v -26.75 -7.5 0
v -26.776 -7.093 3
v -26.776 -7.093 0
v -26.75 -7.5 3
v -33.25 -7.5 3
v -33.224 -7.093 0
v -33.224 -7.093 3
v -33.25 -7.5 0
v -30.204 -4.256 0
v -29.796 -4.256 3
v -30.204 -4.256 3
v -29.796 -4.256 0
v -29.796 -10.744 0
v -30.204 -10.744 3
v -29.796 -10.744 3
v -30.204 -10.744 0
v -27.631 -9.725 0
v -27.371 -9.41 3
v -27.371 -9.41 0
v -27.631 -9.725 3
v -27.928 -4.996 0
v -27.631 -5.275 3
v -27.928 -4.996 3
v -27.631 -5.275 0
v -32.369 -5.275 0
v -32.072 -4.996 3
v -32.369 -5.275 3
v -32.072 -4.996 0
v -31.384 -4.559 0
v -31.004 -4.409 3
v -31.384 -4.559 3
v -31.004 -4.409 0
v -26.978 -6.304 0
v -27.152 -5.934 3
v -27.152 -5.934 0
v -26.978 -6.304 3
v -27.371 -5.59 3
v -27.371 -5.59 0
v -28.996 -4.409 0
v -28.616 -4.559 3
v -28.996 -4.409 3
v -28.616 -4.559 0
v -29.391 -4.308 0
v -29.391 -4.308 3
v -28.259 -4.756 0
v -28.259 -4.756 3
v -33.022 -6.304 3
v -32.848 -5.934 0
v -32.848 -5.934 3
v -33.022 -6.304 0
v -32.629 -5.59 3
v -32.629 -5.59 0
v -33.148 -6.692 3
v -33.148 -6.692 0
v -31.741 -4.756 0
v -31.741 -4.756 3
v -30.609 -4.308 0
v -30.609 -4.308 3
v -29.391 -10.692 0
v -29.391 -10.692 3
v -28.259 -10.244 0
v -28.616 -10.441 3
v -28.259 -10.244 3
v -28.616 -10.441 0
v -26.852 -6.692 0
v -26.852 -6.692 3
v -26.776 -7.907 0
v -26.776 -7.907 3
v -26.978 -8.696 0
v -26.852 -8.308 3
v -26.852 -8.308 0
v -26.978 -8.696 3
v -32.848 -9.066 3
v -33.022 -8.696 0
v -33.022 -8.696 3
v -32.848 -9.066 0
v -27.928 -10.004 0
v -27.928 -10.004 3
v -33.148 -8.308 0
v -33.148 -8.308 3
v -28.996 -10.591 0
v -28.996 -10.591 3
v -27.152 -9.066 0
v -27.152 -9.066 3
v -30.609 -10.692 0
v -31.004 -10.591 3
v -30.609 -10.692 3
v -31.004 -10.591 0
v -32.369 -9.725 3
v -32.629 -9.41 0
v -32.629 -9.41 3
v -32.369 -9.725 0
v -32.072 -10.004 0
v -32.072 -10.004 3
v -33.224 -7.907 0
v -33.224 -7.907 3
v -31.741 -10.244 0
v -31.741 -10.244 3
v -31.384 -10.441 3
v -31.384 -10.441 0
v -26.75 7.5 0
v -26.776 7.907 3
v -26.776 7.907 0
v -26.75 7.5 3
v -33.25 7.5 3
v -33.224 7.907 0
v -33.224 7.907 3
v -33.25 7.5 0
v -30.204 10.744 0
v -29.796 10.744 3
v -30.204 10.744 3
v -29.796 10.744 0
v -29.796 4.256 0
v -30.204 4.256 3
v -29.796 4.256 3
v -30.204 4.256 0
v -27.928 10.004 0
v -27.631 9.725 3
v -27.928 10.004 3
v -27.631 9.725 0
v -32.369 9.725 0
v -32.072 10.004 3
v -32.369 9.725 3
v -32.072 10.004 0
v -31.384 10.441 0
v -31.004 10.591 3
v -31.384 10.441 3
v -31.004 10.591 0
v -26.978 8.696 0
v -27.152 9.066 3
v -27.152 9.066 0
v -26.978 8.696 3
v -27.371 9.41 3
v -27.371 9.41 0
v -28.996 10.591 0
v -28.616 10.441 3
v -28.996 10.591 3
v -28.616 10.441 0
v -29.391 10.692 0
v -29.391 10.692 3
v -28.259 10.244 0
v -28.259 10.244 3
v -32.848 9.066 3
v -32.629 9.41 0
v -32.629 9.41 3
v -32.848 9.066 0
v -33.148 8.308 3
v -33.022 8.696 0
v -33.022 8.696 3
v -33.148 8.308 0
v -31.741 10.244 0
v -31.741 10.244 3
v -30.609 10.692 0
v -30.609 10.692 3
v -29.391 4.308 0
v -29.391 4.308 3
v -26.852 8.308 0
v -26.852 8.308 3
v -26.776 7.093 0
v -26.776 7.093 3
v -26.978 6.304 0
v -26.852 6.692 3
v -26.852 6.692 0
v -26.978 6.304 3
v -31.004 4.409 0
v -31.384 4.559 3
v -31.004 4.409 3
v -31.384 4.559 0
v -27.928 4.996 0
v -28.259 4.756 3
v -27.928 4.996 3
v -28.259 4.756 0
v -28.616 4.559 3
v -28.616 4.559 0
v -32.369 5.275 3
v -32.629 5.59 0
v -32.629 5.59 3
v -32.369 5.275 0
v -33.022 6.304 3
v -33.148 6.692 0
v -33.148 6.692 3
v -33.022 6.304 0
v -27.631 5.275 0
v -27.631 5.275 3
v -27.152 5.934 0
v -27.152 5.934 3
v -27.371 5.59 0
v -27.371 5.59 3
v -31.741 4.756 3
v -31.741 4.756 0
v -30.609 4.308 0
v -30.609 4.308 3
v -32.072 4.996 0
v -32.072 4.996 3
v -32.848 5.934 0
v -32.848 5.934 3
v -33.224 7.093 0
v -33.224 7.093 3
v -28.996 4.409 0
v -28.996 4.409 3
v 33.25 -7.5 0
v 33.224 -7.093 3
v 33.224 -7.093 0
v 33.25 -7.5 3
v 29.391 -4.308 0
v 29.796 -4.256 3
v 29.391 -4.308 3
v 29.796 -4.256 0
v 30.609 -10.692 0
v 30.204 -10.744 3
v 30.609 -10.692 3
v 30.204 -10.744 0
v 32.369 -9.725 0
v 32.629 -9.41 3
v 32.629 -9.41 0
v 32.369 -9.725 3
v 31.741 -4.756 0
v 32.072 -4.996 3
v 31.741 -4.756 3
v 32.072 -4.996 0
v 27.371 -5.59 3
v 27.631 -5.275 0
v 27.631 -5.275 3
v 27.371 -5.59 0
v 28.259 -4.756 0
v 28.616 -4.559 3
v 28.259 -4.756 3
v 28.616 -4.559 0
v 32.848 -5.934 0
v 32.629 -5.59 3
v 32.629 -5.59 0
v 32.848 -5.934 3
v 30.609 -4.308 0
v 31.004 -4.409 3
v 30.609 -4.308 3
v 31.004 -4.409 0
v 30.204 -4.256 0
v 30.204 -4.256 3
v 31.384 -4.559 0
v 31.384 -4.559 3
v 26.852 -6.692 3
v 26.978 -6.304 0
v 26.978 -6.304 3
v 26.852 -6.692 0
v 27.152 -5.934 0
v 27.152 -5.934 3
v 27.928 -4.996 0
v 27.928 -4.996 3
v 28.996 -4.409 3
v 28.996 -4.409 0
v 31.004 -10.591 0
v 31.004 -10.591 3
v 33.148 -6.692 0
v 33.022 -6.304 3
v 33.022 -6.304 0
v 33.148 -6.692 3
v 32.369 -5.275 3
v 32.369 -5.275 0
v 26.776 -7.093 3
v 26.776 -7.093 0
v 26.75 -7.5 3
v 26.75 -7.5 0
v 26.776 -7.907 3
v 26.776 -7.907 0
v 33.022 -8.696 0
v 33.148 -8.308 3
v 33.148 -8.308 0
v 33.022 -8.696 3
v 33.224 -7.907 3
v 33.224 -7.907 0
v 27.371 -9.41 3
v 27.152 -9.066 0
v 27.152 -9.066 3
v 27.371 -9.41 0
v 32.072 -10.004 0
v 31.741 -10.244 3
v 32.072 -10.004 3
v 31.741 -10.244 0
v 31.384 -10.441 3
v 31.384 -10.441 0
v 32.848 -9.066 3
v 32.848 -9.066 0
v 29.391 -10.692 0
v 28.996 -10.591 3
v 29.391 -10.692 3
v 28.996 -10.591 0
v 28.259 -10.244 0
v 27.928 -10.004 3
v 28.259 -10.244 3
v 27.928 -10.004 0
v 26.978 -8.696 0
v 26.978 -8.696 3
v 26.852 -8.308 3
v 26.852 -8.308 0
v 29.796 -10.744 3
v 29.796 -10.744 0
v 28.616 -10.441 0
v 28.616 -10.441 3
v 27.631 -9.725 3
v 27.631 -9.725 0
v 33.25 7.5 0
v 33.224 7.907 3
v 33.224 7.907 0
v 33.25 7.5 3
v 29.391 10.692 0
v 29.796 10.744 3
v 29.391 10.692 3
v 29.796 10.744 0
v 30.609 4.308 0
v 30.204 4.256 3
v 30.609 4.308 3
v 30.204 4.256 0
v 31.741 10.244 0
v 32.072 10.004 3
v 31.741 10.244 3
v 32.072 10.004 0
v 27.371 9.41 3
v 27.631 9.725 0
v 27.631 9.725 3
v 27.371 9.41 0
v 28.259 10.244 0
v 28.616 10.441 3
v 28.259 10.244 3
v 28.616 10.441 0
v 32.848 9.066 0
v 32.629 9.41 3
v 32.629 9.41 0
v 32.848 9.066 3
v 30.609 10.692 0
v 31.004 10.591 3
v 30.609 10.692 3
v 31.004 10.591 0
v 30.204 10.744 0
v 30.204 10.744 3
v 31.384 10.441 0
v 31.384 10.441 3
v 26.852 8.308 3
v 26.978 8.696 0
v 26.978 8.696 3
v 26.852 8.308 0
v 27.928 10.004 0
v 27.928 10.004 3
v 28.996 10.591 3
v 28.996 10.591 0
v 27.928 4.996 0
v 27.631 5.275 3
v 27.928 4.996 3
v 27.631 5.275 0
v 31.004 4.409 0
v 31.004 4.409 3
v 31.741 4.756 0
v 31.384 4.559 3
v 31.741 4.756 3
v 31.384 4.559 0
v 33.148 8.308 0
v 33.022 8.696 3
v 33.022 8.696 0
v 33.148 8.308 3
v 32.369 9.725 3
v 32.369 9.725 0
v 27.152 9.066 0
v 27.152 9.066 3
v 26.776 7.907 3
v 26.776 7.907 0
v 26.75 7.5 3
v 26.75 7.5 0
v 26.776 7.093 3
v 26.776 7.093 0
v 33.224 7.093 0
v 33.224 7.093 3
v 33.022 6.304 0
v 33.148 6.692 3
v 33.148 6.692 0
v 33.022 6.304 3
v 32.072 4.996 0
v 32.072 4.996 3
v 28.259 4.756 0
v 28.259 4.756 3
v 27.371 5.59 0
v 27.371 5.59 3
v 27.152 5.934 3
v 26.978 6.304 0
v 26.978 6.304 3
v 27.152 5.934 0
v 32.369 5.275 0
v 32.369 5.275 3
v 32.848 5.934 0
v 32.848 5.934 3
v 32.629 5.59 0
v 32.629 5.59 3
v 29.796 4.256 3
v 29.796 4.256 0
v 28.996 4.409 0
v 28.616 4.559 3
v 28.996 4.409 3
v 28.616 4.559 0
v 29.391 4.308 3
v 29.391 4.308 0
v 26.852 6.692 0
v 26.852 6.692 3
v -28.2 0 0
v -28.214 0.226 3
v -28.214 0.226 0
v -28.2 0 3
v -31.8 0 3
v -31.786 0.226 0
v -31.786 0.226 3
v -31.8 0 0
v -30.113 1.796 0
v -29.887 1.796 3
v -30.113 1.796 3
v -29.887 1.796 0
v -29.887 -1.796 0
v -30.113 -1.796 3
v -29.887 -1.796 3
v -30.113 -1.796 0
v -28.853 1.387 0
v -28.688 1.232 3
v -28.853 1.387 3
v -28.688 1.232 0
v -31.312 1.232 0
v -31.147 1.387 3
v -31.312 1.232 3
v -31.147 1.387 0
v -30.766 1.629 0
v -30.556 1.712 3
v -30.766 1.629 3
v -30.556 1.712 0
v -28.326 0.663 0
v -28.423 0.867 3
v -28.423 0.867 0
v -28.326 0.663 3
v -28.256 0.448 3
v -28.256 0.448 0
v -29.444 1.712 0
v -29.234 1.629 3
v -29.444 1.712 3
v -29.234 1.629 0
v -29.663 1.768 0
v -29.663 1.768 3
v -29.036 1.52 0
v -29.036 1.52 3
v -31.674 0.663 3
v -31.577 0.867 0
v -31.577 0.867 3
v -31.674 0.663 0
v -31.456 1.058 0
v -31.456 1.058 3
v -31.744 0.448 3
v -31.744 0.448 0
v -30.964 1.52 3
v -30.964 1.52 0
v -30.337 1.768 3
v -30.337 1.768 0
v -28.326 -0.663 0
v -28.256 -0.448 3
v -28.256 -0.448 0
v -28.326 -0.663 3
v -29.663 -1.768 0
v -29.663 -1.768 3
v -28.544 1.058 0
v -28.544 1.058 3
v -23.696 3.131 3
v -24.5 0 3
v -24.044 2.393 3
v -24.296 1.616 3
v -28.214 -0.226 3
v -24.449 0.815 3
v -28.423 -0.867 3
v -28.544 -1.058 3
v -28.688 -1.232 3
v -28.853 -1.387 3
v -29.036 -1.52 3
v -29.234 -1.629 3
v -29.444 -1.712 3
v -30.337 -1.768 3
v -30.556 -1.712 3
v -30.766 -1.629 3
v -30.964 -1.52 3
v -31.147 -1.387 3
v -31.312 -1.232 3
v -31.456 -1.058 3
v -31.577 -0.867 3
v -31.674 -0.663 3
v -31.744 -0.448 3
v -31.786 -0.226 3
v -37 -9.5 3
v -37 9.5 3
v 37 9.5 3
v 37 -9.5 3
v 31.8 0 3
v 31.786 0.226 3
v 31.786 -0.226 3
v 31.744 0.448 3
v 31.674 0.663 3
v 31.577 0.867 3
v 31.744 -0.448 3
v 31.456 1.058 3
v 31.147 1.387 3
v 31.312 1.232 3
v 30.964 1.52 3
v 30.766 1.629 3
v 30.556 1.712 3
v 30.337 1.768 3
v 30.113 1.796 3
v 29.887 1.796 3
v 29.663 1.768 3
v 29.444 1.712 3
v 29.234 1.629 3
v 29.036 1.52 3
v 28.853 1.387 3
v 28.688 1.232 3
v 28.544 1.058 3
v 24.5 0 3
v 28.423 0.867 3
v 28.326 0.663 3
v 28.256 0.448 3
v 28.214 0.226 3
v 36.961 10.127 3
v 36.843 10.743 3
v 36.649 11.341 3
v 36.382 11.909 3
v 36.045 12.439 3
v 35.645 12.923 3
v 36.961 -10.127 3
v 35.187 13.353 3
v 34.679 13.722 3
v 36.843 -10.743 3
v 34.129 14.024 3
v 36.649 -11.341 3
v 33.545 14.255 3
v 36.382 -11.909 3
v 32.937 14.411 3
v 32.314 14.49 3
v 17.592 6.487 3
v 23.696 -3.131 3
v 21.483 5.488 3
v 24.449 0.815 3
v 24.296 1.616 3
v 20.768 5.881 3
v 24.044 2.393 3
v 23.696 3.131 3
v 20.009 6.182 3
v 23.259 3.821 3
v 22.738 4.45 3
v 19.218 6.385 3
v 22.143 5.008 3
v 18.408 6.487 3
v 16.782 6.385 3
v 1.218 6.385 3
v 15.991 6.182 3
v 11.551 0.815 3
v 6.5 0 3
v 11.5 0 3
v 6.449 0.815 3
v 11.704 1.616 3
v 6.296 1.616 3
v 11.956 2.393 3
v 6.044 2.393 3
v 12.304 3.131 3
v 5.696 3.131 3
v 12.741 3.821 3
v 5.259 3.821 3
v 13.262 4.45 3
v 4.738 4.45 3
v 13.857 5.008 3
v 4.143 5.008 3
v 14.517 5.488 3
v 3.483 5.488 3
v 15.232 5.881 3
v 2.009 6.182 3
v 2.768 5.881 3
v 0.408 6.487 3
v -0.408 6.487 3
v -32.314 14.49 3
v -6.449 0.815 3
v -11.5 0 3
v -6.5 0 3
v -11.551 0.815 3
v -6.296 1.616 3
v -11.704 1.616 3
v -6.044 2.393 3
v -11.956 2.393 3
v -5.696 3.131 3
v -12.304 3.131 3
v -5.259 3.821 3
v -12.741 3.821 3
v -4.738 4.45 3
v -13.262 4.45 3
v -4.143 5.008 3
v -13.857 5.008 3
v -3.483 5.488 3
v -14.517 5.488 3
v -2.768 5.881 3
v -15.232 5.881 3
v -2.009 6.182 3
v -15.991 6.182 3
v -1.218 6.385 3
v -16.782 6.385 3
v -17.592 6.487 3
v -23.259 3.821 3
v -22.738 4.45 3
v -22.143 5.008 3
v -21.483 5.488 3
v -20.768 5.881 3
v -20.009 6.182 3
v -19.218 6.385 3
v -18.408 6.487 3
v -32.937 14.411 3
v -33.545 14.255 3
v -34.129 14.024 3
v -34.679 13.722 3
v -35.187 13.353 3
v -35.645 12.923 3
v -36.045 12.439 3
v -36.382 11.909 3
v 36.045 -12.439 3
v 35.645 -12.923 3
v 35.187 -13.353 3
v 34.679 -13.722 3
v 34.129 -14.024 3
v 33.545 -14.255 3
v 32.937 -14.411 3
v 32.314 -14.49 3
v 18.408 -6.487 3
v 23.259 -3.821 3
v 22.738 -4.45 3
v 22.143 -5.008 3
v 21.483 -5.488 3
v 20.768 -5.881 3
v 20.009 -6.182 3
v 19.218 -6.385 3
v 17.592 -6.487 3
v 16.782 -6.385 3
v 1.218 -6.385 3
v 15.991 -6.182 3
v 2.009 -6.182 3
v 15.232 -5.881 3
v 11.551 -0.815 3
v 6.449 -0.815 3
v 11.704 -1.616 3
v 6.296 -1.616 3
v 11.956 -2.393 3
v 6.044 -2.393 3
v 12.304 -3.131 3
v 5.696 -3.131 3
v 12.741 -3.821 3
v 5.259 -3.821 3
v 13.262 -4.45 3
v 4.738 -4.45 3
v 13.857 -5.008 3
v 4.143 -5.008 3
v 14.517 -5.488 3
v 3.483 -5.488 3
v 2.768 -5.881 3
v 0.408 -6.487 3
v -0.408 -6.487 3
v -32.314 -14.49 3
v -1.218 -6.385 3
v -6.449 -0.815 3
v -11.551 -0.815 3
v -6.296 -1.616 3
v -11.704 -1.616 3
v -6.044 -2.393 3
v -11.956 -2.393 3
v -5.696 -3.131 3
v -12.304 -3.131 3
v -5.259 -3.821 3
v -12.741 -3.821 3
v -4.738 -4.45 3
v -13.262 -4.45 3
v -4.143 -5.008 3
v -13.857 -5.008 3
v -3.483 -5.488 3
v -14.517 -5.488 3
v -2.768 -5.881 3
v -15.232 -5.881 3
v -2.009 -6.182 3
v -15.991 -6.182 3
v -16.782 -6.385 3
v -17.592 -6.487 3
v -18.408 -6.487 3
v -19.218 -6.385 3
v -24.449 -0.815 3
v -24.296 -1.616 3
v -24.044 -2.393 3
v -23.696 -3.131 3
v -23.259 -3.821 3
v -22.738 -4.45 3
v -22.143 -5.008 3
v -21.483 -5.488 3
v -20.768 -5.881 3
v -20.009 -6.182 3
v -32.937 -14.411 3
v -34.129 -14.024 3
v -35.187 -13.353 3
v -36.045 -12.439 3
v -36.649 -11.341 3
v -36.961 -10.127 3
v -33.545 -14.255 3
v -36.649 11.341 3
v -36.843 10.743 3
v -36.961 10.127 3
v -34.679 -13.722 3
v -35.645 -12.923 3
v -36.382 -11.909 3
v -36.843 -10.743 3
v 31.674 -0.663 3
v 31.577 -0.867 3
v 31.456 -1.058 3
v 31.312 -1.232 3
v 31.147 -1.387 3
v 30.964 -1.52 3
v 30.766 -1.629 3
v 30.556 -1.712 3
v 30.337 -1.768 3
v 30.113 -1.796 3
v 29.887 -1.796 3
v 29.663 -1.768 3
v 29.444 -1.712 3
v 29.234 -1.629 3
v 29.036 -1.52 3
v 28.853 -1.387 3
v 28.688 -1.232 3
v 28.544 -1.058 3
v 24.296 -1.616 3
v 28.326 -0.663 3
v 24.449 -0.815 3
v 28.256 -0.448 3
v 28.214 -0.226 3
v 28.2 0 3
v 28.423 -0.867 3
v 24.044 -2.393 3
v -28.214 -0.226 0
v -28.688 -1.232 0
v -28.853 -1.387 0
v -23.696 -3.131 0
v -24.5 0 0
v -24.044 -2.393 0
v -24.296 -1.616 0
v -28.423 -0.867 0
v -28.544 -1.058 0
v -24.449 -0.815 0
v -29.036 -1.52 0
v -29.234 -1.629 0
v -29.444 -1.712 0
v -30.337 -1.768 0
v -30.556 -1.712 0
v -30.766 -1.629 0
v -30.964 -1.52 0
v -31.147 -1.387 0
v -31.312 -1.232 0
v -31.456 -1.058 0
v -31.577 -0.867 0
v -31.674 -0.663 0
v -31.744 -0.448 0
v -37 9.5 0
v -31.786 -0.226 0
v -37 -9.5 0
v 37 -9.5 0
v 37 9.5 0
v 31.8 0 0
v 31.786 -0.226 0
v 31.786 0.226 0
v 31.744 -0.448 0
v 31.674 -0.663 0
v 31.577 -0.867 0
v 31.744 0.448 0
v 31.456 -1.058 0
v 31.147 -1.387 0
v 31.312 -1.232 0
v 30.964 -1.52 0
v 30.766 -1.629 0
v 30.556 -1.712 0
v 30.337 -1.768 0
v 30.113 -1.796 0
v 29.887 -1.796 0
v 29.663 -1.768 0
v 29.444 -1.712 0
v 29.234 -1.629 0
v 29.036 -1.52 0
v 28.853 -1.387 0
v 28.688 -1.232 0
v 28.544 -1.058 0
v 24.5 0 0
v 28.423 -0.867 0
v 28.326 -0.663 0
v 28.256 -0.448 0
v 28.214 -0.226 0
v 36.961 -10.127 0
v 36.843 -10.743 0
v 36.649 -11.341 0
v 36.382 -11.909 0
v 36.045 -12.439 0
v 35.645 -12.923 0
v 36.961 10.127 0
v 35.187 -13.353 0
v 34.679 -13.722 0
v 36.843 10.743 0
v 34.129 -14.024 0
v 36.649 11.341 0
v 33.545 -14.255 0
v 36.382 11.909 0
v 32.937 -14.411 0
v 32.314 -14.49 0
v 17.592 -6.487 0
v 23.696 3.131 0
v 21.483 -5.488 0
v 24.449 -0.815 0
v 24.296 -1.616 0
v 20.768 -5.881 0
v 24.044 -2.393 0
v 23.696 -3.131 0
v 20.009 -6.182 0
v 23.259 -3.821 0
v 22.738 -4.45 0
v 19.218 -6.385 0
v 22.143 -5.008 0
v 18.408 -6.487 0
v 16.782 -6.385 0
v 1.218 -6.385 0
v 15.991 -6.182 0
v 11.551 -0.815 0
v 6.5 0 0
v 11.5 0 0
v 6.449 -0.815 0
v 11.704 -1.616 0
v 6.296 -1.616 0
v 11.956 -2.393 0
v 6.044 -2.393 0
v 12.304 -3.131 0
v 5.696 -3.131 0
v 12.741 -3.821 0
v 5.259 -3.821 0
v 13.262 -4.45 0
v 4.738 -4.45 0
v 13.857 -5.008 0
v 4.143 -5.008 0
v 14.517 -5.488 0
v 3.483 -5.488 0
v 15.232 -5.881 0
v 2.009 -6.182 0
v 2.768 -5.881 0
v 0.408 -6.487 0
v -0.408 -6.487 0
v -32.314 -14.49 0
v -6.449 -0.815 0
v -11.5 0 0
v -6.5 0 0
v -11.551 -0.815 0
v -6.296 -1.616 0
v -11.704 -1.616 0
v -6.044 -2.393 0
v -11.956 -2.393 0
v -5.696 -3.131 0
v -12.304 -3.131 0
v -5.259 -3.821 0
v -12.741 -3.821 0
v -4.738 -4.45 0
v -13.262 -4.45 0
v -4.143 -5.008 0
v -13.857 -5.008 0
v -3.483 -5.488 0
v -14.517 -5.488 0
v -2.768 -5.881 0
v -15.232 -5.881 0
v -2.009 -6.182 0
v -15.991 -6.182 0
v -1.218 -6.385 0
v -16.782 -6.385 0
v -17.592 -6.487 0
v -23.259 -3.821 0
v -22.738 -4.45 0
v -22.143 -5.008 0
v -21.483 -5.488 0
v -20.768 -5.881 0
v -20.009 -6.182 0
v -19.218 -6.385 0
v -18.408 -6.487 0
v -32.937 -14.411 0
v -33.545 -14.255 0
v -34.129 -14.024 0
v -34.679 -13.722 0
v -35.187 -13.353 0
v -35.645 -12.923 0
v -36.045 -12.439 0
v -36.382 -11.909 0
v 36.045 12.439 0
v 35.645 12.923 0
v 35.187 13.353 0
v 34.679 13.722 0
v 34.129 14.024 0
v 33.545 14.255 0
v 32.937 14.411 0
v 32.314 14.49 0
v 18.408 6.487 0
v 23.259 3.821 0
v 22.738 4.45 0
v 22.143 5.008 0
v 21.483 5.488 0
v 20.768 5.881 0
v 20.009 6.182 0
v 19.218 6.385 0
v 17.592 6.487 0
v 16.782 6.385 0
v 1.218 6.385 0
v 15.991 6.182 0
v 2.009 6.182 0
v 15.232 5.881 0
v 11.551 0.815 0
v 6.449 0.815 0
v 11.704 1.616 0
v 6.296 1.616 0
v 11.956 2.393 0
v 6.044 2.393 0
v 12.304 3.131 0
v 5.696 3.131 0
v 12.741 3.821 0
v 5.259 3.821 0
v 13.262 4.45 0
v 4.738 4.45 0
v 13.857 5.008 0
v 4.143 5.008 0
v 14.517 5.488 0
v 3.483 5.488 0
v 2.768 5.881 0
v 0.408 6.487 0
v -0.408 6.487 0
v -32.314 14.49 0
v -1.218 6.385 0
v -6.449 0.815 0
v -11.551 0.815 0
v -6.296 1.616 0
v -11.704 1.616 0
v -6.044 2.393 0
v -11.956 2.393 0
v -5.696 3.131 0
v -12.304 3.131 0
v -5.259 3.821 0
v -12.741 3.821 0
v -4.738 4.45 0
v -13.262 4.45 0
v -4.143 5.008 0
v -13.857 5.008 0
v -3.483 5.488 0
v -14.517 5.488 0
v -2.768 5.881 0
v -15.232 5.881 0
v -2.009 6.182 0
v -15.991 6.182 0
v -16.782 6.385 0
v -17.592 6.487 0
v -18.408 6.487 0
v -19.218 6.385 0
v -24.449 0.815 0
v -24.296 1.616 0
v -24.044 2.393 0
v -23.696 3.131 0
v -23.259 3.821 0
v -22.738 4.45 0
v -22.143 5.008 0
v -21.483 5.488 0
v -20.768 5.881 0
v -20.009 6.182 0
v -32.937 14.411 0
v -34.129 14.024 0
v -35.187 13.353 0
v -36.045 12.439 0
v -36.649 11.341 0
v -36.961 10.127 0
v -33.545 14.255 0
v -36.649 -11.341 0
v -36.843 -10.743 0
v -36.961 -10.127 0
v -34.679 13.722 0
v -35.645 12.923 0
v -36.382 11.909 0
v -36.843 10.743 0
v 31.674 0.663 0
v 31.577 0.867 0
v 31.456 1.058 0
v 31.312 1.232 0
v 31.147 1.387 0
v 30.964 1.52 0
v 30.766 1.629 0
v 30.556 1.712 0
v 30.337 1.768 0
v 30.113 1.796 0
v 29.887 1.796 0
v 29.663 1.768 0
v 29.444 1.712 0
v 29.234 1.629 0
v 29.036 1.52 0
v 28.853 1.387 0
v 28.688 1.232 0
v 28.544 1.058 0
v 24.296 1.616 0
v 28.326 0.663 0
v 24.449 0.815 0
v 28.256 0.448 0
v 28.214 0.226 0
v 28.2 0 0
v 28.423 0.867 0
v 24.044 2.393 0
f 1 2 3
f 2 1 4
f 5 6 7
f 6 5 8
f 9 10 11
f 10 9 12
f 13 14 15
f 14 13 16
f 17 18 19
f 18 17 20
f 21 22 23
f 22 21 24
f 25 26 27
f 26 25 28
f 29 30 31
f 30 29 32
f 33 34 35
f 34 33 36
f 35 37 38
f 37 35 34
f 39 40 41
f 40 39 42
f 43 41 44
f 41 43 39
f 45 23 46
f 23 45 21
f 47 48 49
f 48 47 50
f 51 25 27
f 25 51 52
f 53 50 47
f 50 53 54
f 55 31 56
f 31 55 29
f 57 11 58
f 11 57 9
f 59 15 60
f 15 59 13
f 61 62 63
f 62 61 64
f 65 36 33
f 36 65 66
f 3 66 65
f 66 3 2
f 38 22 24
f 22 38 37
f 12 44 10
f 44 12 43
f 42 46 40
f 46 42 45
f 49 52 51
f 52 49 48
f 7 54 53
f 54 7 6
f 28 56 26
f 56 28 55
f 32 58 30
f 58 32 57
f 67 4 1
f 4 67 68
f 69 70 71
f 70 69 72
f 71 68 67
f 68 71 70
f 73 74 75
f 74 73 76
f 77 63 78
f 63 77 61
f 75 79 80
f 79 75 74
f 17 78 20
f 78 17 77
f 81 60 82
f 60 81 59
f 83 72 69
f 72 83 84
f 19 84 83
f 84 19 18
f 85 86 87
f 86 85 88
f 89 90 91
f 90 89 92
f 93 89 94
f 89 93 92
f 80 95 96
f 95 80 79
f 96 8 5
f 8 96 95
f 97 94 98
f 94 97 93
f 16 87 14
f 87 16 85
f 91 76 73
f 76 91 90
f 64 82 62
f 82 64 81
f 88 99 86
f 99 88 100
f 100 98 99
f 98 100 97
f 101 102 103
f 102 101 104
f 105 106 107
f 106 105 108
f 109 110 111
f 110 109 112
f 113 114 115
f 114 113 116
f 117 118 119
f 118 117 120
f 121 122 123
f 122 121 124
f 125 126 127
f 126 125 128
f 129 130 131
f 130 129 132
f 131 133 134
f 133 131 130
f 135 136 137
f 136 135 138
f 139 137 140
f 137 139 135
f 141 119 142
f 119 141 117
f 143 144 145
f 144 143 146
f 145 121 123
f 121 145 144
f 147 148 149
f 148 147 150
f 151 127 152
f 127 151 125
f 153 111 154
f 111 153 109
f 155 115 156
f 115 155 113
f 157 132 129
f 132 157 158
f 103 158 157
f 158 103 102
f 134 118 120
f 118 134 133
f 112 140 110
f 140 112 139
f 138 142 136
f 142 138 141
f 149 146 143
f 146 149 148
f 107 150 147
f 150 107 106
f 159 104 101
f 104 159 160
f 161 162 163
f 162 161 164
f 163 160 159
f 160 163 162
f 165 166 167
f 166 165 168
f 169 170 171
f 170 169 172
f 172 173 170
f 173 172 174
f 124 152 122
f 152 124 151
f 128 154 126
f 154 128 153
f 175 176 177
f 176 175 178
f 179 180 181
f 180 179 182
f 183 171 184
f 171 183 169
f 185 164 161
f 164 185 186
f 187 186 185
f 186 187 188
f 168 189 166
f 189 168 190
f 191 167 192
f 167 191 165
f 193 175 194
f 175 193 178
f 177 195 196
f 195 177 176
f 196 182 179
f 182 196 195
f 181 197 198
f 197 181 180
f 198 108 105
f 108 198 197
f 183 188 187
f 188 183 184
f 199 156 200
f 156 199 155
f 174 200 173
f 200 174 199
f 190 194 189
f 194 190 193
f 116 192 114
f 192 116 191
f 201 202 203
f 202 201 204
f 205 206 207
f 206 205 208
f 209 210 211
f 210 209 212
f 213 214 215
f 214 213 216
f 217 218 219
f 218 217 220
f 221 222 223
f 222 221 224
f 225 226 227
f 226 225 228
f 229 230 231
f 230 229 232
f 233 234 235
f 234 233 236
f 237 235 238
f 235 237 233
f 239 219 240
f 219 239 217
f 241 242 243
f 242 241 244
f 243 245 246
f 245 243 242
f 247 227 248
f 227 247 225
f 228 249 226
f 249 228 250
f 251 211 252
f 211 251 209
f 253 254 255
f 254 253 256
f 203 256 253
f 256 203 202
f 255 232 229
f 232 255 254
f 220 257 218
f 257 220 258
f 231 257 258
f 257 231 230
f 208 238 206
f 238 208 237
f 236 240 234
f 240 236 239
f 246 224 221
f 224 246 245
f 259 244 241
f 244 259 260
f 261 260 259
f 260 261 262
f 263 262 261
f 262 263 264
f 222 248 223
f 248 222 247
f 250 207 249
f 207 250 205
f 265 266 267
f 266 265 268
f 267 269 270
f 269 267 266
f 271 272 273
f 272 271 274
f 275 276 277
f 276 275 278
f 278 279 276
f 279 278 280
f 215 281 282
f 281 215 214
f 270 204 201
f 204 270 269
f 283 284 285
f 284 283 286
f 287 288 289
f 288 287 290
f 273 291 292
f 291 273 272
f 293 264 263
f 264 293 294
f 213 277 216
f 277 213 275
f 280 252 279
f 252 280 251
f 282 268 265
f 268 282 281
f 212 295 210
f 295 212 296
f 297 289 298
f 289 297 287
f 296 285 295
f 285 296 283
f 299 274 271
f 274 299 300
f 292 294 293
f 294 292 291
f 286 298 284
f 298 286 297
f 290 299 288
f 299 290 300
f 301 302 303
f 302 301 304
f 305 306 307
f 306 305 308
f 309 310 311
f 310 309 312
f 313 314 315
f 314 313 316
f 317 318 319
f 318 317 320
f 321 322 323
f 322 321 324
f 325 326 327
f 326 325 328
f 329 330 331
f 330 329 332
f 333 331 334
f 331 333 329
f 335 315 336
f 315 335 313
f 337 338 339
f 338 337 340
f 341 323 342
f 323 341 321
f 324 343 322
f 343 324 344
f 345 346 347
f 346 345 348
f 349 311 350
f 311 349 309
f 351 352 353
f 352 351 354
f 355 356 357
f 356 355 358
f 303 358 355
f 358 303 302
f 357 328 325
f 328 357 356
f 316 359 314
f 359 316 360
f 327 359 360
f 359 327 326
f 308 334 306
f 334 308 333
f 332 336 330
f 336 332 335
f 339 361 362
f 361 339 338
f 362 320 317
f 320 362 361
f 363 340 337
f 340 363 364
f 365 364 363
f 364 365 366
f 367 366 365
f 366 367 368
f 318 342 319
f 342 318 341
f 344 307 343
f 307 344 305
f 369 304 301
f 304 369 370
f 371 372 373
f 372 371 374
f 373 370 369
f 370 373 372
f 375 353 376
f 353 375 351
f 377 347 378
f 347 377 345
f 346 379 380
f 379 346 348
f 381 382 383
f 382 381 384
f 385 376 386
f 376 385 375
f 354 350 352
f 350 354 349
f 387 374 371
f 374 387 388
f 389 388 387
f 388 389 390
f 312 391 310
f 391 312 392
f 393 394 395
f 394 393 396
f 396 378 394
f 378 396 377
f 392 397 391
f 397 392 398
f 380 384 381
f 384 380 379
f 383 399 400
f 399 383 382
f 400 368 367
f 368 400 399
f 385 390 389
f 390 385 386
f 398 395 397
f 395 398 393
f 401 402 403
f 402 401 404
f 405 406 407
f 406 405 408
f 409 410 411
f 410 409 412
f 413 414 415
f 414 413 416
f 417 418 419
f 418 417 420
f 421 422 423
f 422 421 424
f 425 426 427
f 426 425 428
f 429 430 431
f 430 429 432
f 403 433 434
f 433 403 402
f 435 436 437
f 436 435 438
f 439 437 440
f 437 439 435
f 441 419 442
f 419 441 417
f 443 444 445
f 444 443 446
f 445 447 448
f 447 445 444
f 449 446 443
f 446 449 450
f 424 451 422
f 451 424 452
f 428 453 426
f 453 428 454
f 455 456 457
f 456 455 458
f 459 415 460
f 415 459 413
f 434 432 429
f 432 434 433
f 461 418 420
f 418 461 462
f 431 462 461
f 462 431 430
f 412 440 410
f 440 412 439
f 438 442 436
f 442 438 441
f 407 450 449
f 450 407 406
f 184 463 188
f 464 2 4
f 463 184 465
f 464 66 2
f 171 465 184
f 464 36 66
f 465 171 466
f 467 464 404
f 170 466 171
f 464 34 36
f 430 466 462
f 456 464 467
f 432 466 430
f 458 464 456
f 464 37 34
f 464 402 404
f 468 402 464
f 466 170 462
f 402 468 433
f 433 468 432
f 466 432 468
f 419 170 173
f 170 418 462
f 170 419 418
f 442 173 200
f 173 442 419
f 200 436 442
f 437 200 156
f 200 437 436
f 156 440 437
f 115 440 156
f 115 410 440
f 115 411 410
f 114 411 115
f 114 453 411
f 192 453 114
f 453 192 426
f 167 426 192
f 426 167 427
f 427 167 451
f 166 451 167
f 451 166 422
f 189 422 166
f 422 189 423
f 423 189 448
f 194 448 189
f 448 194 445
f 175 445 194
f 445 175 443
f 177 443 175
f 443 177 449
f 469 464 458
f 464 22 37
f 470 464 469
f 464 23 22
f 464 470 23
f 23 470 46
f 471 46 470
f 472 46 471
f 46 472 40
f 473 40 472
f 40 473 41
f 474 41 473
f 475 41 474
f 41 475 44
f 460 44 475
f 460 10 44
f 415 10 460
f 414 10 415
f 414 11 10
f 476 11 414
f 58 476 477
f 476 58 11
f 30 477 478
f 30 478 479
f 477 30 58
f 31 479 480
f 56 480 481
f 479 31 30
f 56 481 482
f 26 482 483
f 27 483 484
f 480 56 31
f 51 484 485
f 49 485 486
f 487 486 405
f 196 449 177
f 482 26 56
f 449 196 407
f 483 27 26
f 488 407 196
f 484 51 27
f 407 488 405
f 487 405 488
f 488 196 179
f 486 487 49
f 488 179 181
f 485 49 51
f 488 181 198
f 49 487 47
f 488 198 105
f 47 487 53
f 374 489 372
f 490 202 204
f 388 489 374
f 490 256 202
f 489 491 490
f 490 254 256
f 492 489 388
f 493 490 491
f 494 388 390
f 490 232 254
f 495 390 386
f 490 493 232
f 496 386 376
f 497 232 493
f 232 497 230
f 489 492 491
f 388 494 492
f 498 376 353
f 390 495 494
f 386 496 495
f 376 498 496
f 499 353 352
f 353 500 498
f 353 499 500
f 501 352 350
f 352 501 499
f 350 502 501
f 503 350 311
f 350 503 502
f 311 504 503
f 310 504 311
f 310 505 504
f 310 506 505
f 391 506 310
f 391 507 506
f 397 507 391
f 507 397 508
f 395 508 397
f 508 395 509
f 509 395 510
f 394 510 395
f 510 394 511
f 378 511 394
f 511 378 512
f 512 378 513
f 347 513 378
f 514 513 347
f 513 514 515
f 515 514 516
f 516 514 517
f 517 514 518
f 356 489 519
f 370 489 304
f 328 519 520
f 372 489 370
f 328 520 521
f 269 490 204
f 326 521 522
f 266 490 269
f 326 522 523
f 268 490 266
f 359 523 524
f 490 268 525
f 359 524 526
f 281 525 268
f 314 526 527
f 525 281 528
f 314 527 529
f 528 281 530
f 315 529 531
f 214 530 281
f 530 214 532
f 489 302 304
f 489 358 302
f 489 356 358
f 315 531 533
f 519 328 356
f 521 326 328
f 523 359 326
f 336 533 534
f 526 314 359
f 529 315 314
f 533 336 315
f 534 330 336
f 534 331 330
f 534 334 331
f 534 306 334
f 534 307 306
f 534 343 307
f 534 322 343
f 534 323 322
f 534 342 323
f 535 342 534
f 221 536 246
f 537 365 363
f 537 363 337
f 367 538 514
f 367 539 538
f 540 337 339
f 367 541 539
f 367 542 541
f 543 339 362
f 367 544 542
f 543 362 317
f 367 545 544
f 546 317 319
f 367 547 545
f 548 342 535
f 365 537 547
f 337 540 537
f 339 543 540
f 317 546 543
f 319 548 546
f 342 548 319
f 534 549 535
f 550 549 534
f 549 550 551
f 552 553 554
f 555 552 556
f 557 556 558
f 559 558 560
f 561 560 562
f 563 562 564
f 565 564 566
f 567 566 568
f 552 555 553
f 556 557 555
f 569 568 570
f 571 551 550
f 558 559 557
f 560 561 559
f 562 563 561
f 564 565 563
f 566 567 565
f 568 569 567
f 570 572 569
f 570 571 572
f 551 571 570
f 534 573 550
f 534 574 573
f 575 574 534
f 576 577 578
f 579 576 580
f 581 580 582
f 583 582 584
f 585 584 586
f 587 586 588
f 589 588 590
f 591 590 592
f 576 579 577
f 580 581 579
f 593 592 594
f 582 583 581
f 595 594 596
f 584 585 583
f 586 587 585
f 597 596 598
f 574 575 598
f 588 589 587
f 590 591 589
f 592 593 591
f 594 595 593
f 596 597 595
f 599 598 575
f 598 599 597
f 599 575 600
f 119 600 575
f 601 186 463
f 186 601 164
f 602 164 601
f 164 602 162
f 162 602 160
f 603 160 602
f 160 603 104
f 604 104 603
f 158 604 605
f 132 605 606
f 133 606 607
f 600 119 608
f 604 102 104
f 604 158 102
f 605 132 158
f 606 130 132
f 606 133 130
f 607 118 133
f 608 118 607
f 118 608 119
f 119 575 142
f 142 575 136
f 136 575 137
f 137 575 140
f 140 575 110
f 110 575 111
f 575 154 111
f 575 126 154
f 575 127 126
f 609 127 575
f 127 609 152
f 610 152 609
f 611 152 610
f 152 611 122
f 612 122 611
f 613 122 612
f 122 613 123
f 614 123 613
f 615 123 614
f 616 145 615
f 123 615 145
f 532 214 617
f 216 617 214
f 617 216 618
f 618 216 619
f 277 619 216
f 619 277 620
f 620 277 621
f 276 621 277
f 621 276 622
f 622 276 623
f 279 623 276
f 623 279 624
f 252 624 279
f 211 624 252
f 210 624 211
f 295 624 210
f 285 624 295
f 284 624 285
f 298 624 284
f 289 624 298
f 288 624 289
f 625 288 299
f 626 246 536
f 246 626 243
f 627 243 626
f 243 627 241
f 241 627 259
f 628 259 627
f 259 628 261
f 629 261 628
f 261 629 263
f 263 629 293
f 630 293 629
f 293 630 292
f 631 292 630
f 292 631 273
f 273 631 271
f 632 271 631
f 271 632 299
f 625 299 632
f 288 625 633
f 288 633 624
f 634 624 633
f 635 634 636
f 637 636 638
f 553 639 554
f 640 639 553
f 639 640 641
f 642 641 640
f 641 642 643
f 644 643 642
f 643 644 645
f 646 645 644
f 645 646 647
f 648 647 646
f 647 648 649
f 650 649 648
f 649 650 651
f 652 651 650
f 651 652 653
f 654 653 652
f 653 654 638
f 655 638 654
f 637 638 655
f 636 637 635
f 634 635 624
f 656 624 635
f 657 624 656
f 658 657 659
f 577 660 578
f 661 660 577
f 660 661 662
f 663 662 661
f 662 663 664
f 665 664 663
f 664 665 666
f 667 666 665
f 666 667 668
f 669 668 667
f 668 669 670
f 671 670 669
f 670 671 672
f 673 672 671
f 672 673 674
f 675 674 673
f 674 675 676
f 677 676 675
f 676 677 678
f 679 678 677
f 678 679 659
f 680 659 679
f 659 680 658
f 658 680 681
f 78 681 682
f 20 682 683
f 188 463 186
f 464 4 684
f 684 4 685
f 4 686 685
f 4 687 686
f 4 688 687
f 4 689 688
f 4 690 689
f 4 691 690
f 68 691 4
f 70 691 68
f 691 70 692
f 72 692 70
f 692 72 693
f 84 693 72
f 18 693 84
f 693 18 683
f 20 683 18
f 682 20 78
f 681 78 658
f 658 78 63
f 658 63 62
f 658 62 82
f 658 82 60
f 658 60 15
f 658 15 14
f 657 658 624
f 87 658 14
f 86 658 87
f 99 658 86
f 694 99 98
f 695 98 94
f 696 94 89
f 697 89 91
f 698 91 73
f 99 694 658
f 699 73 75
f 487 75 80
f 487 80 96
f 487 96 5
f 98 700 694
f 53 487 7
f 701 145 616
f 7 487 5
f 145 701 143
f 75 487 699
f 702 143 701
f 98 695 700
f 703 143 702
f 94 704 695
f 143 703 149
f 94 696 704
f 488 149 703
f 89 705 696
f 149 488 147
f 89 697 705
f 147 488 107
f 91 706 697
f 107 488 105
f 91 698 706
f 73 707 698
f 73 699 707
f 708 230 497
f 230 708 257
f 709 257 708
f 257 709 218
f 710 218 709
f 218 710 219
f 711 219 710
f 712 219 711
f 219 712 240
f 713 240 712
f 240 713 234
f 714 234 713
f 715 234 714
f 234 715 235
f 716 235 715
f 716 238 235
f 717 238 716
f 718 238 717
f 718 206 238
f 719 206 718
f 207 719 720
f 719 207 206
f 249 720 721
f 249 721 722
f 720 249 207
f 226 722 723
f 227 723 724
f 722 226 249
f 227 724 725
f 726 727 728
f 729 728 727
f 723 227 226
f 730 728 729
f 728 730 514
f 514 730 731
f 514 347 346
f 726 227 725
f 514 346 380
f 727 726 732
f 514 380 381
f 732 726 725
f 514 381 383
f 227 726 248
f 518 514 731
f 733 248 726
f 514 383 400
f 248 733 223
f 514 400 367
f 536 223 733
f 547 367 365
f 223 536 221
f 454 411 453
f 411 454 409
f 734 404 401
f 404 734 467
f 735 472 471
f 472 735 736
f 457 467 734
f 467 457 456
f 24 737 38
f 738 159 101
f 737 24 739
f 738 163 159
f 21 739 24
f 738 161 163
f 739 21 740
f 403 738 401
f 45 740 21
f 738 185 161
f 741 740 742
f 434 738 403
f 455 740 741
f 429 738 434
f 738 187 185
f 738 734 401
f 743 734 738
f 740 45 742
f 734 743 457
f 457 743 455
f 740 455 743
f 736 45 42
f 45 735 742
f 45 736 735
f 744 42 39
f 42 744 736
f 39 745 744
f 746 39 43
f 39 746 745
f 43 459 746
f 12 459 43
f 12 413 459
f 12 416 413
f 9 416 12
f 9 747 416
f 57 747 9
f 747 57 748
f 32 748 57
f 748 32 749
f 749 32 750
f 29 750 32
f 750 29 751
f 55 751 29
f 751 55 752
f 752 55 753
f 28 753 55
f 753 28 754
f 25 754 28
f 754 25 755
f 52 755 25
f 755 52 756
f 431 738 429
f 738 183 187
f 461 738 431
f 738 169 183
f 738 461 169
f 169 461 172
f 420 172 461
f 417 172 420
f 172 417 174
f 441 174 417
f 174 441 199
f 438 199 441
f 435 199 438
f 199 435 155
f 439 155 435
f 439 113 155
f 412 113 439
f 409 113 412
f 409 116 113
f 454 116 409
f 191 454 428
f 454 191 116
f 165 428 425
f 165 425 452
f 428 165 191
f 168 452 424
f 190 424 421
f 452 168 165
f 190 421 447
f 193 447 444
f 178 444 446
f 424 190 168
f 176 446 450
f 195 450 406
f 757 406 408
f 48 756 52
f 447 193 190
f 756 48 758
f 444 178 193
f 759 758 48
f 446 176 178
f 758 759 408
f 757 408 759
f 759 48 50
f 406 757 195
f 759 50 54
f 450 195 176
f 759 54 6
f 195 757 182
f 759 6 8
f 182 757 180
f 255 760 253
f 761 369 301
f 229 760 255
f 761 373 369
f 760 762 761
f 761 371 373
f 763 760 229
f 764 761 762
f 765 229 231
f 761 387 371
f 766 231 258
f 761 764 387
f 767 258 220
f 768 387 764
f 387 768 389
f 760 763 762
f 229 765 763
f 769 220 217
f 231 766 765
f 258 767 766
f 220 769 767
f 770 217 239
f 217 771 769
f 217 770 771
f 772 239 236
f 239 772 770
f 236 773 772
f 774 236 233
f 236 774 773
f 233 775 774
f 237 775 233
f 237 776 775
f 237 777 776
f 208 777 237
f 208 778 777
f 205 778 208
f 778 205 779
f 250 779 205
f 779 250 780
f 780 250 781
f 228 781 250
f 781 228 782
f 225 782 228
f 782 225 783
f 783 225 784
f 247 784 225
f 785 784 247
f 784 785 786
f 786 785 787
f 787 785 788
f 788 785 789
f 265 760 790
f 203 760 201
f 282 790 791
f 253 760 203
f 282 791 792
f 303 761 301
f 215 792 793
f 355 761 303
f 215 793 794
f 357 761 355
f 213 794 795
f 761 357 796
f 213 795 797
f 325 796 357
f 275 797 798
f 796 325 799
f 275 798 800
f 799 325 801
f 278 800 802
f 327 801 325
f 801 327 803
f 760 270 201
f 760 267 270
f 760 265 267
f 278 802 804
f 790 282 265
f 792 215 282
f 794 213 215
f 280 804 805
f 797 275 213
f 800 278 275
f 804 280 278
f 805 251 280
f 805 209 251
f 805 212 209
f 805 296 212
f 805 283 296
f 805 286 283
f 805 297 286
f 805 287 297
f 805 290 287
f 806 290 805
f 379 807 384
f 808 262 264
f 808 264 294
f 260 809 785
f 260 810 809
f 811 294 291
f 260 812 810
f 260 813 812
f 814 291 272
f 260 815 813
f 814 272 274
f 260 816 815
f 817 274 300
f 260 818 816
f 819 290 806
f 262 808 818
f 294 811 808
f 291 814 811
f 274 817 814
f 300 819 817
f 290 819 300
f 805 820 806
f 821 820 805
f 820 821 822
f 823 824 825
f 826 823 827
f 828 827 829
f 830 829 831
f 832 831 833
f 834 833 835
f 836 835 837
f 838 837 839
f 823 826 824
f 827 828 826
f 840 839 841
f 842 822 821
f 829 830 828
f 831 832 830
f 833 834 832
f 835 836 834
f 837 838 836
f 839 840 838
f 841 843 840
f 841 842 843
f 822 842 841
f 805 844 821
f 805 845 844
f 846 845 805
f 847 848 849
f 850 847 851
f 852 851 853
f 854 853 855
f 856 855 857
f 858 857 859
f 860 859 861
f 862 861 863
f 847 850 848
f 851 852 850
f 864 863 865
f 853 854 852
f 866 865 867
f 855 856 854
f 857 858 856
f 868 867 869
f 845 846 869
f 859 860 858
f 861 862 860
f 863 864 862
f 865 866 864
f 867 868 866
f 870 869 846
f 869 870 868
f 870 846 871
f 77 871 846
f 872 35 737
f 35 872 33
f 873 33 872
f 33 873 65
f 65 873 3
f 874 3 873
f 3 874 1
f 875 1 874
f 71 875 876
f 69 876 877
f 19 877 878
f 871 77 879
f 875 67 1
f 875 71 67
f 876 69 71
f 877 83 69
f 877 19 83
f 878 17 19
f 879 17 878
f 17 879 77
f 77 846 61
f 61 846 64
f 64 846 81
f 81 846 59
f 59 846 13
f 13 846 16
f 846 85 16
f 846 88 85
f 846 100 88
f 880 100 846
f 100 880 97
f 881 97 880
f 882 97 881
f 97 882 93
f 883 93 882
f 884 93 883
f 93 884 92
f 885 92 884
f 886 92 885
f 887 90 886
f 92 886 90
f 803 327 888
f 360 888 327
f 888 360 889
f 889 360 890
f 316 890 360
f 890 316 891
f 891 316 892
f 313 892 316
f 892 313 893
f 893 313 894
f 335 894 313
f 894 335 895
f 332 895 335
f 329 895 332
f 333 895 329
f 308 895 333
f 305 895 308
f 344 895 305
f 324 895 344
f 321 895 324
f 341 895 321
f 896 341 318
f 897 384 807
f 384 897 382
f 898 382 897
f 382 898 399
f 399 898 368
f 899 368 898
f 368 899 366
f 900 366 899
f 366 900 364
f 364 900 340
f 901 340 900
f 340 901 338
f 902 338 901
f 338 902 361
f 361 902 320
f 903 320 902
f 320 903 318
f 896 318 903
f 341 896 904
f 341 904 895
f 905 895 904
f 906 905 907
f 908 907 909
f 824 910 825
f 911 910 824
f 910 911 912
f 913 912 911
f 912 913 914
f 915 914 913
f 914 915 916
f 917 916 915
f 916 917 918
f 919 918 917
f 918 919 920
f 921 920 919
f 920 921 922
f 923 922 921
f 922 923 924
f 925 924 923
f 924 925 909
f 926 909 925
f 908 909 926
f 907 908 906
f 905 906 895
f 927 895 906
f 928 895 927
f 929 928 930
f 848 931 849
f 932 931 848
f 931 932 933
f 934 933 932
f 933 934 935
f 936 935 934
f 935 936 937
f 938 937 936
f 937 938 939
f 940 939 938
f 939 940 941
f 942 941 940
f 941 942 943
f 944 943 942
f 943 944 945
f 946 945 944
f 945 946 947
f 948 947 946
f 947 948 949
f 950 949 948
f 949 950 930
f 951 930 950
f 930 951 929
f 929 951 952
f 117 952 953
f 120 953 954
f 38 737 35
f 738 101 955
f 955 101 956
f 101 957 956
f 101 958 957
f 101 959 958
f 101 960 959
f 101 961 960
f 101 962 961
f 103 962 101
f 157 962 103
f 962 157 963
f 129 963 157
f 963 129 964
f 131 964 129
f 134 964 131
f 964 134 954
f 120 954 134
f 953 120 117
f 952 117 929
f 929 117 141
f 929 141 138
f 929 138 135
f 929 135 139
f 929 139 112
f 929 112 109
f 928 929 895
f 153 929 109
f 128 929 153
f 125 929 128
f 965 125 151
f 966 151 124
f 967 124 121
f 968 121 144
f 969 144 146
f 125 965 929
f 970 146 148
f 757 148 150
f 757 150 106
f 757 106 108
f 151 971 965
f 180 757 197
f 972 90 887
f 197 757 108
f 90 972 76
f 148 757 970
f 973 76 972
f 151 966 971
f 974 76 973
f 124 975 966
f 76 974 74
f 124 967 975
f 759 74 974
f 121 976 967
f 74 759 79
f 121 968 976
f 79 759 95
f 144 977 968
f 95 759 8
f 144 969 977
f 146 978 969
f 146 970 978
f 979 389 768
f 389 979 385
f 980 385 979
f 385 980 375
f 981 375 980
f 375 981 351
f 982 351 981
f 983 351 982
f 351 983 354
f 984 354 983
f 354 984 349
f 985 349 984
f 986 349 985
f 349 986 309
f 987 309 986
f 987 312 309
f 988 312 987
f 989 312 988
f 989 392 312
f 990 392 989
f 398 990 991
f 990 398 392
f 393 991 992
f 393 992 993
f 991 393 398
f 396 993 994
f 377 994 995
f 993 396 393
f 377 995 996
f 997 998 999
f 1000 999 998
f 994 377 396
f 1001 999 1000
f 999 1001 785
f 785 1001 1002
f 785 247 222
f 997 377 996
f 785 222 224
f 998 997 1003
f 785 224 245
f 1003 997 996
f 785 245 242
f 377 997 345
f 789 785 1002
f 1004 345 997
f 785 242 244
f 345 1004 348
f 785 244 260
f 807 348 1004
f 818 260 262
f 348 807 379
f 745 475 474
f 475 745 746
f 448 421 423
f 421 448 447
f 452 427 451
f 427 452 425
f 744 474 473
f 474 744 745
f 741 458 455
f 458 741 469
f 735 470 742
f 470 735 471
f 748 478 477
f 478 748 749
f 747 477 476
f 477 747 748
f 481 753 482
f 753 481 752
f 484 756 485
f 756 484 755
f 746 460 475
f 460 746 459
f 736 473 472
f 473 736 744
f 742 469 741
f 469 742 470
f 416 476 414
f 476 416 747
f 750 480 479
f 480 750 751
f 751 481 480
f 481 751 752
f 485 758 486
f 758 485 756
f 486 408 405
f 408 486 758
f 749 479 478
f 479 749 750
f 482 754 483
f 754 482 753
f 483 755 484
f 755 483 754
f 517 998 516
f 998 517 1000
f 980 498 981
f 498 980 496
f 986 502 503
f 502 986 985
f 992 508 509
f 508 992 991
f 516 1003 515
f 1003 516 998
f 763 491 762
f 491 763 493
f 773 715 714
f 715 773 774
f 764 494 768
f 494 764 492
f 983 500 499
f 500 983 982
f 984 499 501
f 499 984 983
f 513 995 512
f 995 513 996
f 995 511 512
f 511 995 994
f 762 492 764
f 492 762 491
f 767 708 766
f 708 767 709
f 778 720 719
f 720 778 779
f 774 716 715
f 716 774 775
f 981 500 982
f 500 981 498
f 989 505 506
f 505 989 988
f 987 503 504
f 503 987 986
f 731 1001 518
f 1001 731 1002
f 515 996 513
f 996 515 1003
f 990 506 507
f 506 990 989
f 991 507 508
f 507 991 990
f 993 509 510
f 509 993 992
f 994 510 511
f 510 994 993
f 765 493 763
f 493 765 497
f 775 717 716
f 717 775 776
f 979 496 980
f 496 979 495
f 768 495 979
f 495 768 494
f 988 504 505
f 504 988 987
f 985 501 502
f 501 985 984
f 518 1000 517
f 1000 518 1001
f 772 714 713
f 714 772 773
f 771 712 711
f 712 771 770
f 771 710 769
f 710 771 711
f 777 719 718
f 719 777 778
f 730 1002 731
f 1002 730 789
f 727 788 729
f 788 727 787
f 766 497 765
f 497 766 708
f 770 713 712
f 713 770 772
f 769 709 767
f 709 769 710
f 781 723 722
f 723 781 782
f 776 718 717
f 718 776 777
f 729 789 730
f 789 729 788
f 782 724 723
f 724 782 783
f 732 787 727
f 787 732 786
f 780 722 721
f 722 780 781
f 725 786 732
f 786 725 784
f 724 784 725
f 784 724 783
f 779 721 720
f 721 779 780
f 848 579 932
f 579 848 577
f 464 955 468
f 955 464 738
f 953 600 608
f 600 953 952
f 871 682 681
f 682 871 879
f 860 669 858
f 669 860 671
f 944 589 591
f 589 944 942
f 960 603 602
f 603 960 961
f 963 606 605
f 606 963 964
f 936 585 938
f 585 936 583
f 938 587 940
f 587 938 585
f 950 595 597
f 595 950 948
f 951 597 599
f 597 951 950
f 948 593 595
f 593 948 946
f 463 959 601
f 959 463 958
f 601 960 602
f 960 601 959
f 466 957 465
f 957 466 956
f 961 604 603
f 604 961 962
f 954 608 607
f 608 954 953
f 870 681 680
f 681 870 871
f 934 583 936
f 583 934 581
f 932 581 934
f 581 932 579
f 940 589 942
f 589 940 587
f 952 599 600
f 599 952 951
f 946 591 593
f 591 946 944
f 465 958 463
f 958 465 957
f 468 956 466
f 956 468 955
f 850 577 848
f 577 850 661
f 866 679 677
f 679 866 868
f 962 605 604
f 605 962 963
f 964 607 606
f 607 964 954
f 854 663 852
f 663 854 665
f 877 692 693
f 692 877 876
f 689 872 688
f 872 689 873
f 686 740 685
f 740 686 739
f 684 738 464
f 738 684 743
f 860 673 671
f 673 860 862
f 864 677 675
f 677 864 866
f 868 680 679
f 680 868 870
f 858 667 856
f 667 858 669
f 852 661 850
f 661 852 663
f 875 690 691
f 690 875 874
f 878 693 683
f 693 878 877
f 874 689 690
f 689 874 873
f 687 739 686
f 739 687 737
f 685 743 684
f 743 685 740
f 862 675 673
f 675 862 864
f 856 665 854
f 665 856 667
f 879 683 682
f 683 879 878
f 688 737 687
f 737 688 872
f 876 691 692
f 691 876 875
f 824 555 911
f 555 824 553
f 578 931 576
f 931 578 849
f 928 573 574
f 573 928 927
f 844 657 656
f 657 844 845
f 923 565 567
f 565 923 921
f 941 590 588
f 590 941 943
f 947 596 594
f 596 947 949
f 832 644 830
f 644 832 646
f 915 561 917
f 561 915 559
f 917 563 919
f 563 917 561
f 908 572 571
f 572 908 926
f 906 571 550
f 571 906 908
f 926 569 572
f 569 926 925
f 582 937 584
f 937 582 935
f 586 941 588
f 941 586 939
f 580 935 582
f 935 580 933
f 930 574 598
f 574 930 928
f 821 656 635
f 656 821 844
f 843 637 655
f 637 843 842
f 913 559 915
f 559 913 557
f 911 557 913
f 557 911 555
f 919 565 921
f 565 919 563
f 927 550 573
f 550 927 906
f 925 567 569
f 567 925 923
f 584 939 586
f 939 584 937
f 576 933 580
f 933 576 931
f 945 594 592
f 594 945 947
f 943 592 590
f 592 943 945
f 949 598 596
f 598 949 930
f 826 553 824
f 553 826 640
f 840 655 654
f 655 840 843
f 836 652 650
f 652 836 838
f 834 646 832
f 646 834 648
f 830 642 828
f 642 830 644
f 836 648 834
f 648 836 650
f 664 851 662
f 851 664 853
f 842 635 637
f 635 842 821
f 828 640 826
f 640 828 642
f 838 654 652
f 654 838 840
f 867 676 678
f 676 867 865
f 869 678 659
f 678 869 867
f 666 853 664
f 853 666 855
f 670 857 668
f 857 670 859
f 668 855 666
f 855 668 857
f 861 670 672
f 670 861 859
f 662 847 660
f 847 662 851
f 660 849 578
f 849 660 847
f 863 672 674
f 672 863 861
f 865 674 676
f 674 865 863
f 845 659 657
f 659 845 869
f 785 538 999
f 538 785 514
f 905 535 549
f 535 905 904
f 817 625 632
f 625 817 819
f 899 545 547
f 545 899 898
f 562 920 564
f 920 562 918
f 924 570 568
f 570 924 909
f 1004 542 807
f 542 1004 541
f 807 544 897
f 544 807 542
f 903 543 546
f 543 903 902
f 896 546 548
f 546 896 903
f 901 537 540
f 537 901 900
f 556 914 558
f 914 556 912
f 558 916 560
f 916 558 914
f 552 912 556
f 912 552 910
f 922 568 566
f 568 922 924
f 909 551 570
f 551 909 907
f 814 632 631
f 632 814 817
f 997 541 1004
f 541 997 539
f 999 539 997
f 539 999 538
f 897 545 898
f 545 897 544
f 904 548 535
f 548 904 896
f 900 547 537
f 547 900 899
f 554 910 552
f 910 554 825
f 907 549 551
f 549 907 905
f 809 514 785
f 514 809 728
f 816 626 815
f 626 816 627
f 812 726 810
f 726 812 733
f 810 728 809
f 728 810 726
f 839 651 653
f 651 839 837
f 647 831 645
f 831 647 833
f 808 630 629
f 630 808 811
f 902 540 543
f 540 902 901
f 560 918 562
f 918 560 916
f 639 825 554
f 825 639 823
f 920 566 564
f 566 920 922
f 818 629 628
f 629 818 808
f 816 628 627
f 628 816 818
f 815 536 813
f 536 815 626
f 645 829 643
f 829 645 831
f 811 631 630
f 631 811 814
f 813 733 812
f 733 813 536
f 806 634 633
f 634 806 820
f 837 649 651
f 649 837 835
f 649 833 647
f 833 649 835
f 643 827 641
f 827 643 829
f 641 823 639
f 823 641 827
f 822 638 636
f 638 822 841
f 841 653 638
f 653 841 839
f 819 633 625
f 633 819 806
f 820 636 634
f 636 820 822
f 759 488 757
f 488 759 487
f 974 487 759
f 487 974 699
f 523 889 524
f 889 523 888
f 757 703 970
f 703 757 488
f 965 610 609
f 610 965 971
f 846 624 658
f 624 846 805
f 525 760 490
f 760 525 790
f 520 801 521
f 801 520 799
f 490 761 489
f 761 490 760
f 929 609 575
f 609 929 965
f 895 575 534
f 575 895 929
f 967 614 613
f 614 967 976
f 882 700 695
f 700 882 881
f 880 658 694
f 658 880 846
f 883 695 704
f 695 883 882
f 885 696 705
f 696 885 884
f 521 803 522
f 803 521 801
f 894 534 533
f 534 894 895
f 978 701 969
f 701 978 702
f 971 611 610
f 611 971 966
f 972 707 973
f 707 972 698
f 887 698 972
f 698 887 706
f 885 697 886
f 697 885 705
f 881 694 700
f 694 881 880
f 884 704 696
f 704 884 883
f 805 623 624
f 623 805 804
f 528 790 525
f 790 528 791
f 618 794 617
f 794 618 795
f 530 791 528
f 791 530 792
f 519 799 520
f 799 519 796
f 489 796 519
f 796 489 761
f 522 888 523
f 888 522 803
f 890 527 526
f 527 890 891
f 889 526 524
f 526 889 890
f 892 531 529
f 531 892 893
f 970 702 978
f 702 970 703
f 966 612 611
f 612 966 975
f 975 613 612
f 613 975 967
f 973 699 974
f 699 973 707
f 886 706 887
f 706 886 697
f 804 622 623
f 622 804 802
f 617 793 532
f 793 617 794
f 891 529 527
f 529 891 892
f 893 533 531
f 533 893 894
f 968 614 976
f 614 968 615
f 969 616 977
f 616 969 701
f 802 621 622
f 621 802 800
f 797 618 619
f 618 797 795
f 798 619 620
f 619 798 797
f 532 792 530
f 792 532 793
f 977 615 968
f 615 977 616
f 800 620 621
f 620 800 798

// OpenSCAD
$fn = 50;


difference() {
	union() {
		hull() {
			translate(v = [-32.0000000000, 9.5000000000, 0]) {
				cylinder(h = 3, r = 5);
			}
			translate(v = [32.0000000000, 9.5000000000, 0]) {
				cylinder(h = 3, r = 5);
			}
			translate(v = [-32.0000000000, -9.5000000000, 0]) {
				cylinder(h = 3, r = 5);
			}
			translate(v = [32.0000000000, -9.5000000000, 0]) {
				cylinder(h = 3, r = 5);
			}
		}
	}
	union() {
		#translate(v = [-30.0000000000, -7.5000000000, 0]) {
			cylinder(h = 3, r = 3.2500000000);
		}
		#translate(v = [-30.0000000000, 7.5000000000, 0]) {
			cylinder(h = 3, r = 3.2500000000);
		}
		#translate(v = [30.0000000000, -7.5000000000, 0]) {
			cylinder(h = 3, r = 3.2500000000);
		}
		#translate(v = [30.0000000000, 7.5000000000, 0]) {
			cylinder(h = 3, r = 3.2500000000);
		}
		#translate(v = [-30.0000000000, -7.5000000000, -100.0000000000]) {
			cylinder(h = 200, r = 3.2500000000);
		}
		#translate(v = [-30.0000000000, 7.5000000000, -100.0000000000]) {
			cylinder(h = 200, r = 3.2500000000);
		}
		#translate(v = [30.0000000000, -7.5000000000, -100.0000000000]) {
			cylinder(h = 200, r = 3.2500000000);
		}
		#translate(v = [30.0000000000, 7.5000000000, -100.0000000000]) {
			cylinder(h = 200, r = 3.2500000000);
		}
		#translate(v = [-30.0000000000, -7.5000000000, 0]) {
			cylinder(h = 3, r = 1.8000000000);
		}
		#translate(v = [-30.0000000000, 0.0000000000, 0]) {
			cylinder(h = 3, r = 1.8000000000);
		}
		#translate(v = [-30.0000000000, 7.5000000000, 0]) {
			cylinder(h = 3, r = 1.8000000000);
		}
		#translate(v = [30.0000000000, -7.5000000000, 0]) {
			cylinder(h = 3, r = 1.8000000000);
		}
		#translate(v = [30.0000000000, 0.0000000000, 0]) {
			cylinder(h = 3, r = 1.8000000000);
		}
		#translate(v = [30.0000000000, 7.5000000000, 0]) {
			cylinder(h = 3, r = 1.8000000000);
		}
		#translate(v = [-30.0000000000, -7.5000000000, 0]) {
			cylinder(h = 3, r = 1.8000000000);
		}
		#translate(v = [-30.0000000000, 0.0000000000, 0]) {
			cylinder(h = 3, r = 1.8000000000);
		}
		#translate(v = [-30.0000000000, 7.5000000000, 0]) {
			cylinder(h = 3, r = 1.8000000000);
		}
		#translate(v = [30.0000000000, -7.5000000000, 0]) {
			cylinder(h = 3, r = 1.8000000000);
		}
		#translate(v = [30.0000000000, 0.0000000000, 0]) {
			cylinder(h = 3, r = 1.8000000000);
		}
		#translate(v = [30.0000000000, 7.5000000000, 0]) {
			cylinder(h = 3, r = 1.8000000000);
		}
		#translate(v = [-30.0000000000, -7.5000000000, 0]) {
			cylinder(h = 3, r = 1.8000000000);
		}
		#translate(v = [-30.0000000000, 0.0000000000, 0]) {
			cylinder(h = 3, r = 1.8000000000);
		}
		#translate(v = [-30.0000000000, 7.5000000000, 0]) {
			cylinder(h = 3, r = 1.8000000000);
		}
		#translate(v = [30.0000000000, -7.5000000000, 0]) {
			cylinder(h = 3, r = 1.8000000000);
		}
		#translate(v = [30.0000000000, 0.0000000000, 0]) {
			cylinder(h = 3, r = 1.8000000000);
		}
		#translate(v = [30.0000000000, 7.5000000000, 0]) {
			cylinder(h = 3, r = 1.8000000000);
		}
		#translate(v = [-18.0000000000, 0, 0]) {
			cylinder(h = 3, r = 6.5000000000);
		}
		#cylinder(h = 3, r = 6.5000000000);
		#translate(v = [18.0000000000, 0, 0]) {
			cylinder(h = 3, r = 6.5000000000);
		}
	}
}
